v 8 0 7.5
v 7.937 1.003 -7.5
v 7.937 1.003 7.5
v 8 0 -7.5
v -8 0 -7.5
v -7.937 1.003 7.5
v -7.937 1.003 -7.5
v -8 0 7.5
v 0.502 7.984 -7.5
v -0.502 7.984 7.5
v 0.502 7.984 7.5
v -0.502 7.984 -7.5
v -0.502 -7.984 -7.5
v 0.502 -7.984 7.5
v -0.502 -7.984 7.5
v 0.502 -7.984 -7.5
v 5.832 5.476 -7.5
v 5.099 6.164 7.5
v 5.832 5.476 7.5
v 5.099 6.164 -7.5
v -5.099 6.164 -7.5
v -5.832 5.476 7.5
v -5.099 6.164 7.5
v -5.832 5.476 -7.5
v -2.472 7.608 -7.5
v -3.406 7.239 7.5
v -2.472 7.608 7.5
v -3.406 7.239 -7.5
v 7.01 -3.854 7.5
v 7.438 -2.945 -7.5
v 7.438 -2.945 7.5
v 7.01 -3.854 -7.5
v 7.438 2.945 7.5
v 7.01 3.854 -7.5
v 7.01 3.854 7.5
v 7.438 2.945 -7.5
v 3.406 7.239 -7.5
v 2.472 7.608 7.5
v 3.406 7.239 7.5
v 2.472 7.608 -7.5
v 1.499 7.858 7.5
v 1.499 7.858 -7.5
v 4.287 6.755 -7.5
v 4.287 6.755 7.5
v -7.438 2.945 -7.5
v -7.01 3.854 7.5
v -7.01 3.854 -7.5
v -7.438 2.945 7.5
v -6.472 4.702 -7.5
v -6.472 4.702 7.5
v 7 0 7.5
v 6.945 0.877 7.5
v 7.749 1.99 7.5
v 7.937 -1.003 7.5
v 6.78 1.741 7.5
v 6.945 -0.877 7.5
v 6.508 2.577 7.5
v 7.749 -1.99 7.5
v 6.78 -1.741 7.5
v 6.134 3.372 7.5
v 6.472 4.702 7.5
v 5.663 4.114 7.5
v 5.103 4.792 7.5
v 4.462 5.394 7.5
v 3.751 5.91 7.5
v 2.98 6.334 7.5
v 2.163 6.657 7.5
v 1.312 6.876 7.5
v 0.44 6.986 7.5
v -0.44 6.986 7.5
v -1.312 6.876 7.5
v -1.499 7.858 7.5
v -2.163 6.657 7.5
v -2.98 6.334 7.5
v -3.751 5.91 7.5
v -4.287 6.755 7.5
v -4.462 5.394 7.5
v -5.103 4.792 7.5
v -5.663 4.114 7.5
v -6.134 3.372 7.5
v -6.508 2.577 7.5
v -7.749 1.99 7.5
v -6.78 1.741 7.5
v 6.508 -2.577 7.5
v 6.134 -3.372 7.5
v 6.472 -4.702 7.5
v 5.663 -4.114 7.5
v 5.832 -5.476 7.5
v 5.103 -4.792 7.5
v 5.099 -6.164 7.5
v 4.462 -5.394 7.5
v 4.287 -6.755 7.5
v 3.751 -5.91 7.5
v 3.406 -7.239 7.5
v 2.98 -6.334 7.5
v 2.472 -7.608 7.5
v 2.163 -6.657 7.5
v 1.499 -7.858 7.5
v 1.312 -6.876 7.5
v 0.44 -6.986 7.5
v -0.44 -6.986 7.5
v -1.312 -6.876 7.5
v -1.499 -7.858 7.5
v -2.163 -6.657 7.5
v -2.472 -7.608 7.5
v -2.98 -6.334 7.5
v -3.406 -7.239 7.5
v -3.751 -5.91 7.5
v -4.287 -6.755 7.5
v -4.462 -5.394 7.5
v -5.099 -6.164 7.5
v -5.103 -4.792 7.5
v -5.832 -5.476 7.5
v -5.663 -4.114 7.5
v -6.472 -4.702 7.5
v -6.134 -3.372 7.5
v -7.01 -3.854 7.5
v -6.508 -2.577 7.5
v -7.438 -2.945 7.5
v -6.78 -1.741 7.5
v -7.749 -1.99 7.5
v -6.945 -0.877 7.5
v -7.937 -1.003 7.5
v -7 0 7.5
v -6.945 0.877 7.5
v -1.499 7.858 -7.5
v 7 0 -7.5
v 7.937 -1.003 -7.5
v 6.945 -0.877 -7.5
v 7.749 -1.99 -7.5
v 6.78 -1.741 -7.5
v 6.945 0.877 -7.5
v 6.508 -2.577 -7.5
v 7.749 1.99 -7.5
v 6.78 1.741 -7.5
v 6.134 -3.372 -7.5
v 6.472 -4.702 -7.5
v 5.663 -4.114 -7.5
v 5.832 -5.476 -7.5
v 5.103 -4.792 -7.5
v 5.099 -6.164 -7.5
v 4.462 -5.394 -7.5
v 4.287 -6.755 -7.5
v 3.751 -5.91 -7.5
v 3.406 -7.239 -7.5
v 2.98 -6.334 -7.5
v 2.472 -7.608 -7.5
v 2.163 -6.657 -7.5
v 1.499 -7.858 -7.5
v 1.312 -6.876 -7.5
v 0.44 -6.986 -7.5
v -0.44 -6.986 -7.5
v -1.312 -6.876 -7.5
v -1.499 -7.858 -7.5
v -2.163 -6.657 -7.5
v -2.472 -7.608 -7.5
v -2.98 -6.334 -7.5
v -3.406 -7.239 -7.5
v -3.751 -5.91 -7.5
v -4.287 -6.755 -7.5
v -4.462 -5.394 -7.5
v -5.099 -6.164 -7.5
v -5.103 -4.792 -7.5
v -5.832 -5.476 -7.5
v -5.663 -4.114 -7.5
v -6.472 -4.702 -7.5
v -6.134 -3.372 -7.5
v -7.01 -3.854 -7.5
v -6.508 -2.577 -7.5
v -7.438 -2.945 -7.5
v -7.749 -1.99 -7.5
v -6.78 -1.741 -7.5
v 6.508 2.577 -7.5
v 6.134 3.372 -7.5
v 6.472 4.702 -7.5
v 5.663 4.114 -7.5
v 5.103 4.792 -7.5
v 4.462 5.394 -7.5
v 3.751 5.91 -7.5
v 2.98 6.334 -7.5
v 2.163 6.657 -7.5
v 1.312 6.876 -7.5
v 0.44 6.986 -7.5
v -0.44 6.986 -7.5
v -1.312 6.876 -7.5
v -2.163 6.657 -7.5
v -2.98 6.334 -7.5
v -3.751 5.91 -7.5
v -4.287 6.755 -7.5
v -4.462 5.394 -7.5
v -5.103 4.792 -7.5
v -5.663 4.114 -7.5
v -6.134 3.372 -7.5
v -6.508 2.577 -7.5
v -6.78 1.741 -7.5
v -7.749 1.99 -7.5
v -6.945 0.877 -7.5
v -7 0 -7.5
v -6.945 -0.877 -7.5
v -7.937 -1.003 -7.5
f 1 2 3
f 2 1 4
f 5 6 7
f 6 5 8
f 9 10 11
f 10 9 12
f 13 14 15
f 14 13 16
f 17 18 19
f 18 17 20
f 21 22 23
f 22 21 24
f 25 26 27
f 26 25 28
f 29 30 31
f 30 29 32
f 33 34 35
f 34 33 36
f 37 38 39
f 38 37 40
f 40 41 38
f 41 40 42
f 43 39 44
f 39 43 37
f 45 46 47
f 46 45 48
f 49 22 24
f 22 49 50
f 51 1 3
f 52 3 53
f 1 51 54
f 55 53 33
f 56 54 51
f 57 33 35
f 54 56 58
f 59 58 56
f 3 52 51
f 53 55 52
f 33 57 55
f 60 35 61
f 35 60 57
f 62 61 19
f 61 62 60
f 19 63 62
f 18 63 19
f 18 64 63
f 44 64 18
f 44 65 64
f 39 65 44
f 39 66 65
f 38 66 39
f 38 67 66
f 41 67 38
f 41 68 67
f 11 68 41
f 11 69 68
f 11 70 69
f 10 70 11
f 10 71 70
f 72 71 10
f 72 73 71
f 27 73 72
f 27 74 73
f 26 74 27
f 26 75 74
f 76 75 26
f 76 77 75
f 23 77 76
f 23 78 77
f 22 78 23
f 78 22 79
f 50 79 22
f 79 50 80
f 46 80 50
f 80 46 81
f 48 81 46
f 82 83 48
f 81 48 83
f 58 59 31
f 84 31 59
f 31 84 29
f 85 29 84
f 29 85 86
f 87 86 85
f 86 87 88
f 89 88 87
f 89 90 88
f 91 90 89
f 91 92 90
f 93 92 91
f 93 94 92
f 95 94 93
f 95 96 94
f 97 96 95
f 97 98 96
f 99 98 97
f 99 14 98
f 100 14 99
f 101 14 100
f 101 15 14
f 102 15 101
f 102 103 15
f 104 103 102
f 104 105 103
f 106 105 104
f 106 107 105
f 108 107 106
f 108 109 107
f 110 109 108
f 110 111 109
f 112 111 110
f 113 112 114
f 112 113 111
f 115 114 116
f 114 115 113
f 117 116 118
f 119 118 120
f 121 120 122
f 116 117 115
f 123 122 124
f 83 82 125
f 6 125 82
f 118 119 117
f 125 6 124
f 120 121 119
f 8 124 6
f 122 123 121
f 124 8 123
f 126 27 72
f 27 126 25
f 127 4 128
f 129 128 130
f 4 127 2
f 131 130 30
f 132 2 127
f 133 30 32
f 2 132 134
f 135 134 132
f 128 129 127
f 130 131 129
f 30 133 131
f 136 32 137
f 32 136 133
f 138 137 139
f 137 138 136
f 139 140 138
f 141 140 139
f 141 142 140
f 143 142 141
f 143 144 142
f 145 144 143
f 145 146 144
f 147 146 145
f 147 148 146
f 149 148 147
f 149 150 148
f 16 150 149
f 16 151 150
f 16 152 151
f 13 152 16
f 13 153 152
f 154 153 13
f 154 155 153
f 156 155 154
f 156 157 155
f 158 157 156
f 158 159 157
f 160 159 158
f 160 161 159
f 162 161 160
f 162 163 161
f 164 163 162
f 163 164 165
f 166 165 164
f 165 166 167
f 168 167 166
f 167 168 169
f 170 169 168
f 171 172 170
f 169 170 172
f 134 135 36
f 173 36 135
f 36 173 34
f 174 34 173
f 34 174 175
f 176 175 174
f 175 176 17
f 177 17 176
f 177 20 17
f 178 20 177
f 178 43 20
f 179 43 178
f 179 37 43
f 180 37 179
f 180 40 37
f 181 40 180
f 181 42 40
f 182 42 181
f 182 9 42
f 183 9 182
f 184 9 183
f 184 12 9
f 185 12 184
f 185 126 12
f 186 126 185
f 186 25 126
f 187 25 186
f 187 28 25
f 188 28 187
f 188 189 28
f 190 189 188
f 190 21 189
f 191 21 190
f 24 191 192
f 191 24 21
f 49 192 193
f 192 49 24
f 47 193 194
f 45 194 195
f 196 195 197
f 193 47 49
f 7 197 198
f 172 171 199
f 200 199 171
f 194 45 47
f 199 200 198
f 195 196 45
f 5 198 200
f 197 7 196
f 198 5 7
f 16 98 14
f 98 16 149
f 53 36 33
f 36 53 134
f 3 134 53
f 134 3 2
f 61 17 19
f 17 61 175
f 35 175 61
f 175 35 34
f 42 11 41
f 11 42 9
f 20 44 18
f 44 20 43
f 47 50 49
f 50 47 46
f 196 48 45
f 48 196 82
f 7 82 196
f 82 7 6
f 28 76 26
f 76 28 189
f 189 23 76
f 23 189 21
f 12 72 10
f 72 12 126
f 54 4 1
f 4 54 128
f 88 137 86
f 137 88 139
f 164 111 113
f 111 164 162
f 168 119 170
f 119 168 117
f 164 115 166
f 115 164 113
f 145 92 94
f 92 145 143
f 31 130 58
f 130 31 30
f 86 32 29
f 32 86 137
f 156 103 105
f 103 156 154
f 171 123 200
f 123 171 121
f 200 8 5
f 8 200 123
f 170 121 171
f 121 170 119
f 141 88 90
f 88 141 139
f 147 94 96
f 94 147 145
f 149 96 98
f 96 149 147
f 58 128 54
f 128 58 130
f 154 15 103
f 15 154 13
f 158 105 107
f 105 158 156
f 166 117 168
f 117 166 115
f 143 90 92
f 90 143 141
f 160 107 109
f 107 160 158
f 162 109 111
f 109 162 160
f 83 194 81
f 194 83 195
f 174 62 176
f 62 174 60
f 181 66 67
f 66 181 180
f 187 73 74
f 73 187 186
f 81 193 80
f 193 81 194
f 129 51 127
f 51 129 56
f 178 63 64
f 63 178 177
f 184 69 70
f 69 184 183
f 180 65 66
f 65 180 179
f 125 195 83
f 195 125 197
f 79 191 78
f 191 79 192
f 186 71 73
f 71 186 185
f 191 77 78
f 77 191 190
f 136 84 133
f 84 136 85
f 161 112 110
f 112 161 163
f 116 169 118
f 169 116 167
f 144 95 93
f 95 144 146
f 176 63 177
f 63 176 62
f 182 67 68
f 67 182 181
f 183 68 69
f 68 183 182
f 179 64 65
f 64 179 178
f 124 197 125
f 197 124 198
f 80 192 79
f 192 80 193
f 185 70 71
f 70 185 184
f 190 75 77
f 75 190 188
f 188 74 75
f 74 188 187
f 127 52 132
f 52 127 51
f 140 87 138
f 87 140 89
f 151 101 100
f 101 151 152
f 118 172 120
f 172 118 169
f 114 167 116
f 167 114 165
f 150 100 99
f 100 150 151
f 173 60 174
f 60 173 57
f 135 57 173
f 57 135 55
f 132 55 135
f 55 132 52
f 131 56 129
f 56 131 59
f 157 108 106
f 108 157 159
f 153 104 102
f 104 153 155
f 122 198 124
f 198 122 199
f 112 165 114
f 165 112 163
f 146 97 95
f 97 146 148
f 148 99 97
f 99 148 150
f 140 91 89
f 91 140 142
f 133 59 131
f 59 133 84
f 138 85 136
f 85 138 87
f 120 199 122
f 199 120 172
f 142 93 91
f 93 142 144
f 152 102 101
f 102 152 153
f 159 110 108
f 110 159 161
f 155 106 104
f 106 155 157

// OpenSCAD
$fn = 50;


difference() {
	union() {
		translate(v = [0, 0, -7.5000000000]) {
			cylinder(h = 15, r = 8.0000000000);
		}
	}
	union() {
		translate(v = [0, 0, -100.0000000000]) {
			cylinder(h = 200, r = 7);
		}
	}
}
